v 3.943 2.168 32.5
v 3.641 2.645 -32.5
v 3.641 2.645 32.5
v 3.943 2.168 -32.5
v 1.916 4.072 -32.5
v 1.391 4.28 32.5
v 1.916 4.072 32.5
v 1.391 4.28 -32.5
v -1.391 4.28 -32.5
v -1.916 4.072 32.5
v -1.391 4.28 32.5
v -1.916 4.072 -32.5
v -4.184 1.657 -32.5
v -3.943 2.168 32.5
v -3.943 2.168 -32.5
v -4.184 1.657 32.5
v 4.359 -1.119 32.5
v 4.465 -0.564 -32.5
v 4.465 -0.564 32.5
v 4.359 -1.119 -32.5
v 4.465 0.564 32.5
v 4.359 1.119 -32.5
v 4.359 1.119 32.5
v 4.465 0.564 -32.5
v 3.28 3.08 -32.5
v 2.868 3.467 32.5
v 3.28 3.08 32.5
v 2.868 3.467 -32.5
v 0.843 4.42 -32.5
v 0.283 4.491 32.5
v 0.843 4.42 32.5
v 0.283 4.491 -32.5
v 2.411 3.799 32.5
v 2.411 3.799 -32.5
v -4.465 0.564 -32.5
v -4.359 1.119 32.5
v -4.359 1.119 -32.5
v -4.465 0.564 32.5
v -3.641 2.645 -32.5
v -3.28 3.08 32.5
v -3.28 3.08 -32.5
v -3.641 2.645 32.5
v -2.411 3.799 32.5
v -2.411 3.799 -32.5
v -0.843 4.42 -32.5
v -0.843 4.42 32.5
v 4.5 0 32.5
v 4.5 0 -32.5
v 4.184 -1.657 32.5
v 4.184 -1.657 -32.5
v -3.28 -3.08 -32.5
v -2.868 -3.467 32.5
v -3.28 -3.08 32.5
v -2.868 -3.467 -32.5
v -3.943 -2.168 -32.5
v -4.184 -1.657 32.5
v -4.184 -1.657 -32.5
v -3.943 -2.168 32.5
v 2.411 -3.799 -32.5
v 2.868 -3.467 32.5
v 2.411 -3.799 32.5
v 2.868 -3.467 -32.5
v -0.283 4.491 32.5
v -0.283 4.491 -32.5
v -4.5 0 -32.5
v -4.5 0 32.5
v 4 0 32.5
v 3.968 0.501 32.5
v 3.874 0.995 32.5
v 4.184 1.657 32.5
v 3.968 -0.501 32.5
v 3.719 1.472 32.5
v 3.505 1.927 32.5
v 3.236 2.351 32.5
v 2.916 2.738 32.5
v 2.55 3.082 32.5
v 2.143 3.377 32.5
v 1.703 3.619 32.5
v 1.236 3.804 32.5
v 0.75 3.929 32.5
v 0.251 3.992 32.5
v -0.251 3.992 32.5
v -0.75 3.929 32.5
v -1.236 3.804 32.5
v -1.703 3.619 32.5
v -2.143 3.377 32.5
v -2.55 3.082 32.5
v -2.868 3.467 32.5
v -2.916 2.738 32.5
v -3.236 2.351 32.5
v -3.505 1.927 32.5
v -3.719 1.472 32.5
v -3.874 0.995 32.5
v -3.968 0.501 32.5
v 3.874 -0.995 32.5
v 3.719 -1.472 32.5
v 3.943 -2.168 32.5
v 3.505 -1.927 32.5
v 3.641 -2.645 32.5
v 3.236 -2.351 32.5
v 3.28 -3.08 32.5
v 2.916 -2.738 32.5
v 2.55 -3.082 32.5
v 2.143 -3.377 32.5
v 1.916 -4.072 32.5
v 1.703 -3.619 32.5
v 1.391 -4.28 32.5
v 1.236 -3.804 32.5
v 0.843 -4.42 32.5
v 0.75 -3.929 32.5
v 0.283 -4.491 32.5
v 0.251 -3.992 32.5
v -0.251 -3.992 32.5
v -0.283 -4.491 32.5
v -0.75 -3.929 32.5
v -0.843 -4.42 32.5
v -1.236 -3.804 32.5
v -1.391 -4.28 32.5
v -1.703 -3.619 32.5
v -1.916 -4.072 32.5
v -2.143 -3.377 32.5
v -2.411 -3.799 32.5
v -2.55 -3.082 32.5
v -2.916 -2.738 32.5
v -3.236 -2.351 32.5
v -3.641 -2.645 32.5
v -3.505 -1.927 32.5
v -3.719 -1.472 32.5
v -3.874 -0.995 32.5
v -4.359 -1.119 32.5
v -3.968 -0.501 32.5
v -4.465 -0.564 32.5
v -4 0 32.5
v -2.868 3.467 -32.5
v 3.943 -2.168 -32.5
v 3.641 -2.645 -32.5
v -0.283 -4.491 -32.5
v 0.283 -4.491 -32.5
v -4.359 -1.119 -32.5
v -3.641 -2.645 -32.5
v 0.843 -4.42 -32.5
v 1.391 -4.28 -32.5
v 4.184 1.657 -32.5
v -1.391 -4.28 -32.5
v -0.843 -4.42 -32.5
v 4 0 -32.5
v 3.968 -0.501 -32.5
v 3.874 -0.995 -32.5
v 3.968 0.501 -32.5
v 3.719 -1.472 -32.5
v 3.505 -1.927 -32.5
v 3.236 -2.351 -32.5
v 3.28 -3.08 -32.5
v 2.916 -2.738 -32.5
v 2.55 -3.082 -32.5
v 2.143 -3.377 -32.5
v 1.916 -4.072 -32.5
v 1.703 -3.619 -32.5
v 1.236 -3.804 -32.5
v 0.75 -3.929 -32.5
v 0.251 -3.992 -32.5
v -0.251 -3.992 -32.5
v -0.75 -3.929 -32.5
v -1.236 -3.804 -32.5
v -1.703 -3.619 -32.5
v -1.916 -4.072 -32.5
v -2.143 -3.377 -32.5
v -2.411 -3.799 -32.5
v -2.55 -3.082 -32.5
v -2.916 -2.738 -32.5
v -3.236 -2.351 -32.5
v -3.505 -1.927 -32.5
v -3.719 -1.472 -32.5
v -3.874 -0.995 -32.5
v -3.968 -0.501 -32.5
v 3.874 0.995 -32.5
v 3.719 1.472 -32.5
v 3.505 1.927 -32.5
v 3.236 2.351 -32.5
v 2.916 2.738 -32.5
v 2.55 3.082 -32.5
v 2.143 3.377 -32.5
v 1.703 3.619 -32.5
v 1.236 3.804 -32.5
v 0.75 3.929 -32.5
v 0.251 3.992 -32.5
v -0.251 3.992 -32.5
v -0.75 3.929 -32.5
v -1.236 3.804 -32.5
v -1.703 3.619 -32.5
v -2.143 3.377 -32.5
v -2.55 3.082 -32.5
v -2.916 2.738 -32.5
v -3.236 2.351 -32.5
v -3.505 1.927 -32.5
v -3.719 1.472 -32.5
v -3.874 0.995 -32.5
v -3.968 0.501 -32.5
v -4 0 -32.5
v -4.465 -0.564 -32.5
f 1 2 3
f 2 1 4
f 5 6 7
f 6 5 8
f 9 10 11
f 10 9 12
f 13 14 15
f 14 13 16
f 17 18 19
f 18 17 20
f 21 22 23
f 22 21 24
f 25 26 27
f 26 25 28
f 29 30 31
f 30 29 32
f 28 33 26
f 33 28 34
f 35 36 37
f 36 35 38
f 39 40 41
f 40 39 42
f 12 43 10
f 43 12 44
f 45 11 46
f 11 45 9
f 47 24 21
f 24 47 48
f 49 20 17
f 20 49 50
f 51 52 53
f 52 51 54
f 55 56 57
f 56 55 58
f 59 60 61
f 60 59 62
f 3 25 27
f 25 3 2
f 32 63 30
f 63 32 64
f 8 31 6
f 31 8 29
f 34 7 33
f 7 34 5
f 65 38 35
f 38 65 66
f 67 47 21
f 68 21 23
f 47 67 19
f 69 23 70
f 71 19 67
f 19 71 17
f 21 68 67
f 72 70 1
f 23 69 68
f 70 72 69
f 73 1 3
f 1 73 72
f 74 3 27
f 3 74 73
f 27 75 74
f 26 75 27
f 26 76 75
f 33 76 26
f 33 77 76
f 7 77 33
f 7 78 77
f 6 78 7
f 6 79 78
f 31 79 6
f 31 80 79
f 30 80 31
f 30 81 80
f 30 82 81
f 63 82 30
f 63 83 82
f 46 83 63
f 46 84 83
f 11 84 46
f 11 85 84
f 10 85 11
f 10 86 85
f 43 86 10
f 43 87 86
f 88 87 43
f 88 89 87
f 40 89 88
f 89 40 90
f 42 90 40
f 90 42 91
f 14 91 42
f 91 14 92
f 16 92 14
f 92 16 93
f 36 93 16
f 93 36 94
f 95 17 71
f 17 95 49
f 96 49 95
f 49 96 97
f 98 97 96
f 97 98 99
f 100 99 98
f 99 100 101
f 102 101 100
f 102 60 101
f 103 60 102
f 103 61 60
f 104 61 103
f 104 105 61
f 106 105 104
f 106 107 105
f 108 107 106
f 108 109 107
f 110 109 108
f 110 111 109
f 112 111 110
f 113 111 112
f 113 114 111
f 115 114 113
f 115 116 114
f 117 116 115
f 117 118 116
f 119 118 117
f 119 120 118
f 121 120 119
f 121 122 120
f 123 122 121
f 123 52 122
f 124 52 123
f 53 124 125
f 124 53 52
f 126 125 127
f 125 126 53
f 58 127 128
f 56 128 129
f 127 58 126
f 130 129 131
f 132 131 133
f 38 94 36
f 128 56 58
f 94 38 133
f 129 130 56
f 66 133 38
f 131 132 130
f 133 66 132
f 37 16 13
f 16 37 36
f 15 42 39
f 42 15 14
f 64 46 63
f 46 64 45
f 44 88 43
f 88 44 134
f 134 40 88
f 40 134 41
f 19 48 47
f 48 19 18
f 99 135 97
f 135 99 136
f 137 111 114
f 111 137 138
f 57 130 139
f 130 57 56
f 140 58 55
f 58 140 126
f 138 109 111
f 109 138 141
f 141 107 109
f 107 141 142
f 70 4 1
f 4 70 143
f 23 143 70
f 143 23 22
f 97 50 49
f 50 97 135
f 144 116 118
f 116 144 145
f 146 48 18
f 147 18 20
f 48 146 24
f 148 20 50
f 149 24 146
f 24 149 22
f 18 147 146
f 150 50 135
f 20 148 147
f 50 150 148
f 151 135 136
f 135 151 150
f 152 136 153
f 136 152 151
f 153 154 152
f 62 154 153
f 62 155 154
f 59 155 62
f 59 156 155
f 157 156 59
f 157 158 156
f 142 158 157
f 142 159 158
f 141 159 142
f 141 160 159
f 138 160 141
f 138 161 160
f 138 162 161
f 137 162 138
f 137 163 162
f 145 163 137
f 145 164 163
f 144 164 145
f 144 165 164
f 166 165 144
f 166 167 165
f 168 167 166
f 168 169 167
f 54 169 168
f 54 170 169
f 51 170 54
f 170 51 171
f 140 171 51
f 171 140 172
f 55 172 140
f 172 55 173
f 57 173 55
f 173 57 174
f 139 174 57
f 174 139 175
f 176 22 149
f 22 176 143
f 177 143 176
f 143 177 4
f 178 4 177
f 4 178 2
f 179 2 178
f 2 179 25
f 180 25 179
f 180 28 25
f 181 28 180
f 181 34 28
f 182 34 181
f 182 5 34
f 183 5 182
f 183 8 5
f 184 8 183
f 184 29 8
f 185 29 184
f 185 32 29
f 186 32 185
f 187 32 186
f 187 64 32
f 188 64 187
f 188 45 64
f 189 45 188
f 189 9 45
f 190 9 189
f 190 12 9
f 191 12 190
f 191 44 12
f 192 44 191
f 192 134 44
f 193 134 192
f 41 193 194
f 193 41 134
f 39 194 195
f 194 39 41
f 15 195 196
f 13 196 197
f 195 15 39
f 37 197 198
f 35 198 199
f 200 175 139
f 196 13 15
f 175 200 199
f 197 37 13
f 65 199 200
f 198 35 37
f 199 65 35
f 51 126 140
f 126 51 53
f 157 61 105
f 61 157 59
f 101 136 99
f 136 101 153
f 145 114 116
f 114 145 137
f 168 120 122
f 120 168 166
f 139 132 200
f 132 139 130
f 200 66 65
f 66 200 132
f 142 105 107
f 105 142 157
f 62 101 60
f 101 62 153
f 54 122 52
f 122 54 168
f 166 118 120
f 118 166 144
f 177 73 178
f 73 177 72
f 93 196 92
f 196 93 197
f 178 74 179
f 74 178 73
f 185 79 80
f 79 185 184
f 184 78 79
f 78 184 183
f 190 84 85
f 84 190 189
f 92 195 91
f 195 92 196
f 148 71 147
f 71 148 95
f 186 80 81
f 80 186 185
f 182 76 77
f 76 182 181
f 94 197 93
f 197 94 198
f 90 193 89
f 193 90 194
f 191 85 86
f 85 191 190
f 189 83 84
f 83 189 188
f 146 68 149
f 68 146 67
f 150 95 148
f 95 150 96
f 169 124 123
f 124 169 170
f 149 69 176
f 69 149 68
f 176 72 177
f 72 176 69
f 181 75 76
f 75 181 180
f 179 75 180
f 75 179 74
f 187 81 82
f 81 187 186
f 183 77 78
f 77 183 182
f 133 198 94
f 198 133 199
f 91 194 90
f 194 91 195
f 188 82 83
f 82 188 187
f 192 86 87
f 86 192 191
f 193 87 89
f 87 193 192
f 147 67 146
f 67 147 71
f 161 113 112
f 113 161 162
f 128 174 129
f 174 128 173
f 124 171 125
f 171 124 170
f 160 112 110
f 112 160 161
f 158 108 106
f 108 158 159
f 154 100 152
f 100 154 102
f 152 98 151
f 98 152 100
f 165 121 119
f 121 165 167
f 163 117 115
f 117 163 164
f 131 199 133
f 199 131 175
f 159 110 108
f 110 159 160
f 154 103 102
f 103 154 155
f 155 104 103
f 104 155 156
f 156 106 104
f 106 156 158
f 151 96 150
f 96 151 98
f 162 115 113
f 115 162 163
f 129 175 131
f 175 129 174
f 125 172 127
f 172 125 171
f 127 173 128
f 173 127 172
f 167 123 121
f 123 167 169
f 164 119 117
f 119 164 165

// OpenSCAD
$fn = 50;


difference() {
	union() {
		translate(v = [0, 0, -32.5000000000]) {
			cylinder(h = 65, r = 4.5000000000);
		}
	}
	union() {
		translate(v = [0, 0, -100.0000000000]) {
			cylinder(h = 200, r = 4);
		}
	}
}
